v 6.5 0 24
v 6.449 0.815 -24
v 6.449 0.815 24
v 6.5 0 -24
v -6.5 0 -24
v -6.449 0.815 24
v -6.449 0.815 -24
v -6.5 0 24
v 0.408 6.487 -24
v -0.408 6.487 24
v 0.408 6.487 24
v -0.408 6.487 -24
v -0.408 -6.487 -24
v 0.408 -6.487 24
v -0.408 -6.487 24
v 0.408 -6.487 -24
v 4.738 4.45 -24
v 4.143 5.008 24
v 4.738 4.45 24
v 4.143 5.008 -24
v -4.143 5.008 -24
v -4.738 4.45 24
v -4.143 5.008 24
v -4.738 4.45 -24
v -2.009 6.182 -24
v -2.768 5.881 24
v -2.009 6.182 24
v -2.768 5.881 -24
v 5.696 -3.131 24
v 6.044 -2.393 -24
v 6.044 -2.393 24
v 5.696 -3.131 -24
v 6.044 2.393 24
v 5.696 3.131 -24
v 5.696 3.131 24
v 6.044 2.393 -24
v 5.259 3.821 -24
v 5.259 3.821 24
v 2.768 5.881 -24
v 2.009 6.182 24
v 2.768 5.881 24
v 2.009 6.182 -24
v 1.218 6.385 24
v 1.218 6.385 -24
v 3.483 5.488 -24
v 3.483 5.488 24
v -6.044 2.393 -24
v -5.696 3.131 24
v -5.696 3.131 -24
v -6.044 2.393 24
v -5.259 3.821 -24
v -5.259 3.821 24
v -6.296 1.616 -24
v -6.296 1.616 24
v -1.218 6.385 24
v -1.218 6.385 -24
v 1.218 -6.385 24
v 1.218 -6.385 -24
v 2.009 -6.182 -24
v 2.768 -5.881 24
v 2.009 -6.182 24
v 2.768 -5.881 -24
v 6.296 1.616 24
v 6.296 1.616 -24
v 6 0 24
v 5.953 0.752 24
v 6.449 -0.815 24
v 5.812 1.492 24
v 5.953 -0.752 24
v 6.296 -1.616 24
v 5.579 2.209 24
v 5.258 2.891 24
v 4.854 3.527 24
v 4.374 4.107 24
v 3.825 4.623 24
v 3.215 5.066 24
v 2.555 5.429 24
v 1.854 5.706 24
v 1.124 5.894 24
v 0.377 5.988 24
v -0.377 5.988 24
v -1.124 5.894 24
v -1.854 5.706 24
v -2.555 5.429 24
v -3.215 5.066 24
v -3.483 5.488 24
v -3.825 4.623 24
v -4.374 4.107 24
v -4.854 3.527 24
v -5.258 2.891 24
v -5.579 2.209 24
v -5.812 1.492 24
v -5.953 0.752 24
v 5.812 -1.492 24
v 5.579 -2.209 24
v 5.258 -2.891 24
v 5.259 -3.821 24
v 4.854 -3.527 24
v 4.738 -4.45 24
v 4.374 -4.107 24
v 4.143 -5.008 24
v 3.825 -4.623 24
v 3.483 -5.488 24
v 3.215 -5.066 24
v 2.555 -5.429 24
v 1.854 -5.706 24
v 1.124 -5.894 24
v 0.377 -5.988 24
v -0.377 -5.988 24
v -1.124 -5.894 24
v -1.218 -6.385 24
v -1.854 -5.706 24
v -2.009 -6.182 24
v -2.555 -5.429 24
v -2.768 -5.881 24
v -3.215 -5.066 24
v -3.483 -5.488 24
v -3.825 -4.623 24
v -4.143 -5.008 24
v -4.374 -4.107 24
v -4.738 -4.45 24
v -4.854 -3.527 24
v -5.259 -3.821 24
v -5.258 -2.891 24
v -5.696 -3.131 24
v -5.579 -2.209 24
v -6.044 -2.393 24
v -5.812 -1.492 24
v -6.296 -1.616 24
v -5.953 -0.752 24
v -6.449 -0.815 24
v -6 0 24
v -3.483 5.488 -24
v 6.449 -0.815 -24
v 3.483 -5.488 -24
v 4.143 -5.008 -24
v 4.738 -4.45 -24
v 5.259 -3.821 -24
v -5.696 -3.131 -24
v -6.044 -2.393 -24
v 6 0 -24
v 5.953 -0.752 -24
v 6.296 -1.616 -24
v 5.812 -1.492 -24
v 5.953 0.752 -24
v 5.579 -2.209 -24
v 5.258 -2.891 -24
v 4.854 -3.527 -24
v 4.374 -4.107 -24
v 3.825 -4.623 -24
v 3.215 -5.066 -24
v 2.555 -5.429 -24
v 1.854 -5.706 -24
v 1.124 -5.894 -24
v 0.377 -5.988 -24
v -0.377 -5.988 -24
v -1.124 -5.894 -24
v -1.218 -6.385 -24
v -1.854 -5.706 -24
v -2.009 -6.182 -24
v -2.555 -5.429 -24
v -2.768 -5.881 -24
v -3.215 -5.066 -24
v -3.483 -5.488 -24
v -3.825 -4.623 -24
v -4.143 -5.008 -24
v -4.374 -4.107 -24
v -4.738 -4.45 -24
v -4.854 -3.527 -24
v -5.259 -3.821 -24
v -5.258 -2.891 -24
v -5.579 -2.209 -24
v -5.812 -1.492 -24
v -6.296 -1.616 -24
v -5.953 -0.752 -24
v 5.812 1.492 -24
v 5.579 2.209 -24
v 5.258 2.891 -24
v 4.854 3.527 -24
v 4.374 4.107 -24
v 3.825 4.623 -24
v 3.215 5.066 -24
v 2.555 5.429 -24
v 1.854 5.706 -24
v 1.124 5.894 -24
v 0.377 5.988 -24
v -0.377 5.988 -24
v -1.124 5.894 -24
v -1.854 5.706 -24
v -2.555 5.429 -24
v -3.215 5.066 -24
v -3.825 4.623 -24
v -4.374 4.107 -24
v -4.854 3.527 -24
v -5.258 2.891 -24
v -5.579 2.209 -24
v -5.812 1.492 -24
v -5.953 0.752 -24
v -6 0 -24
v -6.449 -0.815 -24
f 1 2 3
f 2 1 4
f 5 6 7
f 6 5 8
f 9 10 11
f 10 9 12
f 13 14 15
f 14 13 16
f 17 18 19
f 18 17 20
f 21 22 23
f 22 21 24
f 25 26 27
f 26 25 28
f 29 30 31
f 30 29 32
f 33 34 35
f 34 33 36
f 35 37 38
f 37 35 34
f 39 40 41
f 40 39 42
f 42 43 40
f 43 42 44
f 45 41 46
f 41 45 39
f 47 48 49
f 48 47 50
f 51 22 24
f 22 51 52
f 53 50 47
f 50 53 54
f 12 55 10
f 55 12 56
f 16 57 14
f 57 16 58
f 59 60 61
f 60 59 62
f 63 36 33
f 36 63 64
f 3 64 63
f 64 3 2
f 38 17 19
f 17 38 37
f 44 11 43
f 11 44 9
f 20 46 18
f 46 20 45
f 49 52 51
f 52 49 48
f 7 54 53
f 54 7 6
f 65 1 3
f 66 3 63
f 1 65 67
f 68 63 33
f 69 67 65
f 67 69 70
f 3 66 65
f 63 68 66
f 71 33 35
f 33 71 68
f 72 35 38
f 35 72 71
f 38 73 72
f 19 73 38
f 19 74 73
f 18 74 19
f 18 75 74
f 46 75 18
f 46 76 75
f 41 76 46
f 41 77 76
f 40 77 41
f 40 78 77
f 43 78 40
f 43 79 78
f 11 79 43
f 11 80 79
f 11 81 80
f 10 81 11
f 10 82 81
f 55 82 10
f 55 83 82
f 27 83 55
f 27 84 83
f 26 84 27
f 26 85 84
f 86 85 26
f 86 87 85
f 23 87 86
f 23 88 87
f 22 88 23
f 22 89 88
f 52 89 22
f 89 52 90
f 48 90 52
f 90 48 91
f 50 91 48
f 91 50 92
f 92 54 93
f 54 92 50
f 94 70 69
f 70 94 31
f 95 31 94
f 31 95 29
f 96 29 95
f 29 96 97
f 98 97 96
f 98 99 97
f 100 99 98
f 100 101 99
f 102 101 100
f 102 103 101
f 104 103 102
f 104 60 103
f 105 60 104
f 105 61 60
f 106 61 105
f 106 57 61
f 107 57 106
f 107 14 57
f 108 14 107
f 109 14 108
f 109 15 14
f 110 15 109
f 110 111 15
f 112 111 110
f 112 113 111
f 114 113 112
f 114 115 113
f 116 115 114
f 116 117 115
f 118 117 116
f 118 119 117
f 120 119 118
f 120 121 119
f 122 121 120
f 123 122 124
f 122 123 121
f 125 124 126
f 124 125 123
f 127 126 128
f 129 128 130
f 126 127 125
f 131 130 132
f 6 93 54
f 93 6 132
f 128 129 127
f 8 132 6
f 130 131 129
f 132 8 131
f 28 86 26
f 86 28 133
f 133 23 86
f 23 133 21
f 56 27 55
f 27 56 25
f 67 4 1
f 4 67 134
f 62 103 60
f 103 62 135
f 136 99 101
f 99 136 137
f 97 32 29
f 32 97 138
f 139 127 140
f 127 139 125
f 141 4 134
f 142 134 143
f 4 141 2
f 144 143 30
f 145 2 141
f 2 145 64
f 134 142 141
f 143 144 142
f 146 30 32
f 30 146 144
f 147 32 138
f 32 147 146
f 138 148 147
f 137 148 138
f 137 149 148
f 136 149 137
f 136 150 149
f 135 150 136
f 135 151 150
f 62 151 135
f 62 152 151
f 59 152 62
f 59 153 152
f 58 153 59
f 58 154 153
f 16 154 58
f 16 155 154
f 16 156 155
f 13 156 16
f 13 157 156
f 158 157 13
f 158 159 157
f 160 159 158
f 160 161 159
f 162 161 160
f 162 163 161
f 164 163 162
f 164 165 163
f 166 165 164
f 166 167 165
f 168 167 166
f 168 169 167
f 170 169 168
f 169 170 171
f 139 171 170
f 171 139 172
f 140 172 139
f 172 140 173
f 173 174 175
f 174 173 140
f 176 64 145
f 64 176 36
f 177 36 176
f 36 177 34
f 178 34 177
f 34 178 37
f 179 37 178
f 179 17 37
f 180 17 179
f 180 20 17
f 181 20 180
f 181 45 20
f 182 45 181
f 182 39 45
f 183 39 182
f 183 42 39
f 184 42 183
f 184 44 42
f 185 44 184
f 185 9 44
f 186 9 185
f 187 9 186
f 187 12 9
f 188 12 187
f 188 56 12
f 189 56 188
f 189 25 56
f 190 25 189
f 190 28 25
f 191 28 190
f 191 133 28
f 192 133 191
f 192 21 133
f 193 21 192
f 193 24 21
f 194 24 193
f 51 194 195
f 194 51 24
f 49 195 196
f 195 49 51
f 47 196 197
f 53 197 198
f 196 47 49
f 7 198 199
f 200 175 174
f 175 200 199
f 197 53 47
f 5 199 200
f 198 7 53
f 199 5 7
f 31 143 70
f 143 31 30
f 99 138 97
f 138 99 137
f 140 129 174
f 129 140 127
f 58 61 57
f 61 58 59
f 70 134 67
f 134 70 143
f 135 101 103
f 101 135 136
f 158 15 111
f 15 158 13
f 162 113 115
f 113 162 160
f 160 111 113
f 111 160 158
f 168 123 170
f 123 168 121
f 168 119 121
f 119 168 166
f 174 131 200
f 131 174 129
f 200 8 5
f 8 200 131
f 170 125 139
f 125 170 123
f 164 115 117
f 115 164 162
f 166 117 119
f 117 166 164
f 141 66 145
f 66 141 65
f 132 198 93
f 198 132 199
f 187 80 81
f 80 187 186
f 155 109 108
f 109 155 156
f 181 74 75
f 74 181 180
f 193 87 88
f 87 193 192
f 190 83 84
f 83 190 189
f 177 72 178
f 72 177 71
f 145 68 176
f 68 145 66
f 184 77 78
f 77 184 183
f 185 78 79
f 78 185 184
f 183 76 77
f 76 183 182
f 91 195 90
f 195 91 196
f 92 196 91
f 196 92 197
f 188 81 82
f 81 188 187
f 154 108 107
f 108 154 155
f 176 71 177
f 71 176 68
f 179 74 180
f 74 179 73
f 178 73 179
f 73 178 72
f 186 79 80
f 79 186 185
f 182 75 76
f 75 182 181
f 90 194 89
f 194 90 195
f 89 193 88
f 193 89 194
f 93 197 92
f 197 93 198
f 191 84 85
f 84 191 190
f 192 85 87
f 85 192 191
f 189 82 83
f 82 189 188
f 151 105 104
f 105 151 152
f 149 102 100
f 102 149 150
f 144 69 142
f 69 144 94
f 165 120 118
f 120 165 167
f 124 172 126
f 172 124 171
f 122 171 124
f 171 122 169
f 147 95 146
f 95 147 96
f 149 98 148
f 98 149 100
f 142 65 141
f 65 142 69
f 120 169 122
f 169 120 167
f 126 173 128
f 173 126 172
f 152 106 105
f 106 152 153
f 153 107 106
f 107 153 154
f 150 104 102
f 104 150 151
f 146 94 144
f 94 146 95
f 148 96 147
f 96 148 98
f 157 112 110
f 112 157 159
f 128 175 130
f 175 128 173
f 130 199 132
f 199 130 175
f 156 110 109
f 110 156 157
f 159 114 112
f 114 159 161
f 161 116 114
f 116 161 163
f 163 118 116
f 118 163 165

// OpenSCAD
$fn = 50;


difference() {
	union() {
		translate(v = [0, 0, -24.0000000000]) {
			cylinder(h = 48, r = 6.5000000000);
		}
	}
	union() {
		translate(v = [0, 0, -100.0000000000]) {
			cylinder(h = 200, r = 6);
		}
	}
}
